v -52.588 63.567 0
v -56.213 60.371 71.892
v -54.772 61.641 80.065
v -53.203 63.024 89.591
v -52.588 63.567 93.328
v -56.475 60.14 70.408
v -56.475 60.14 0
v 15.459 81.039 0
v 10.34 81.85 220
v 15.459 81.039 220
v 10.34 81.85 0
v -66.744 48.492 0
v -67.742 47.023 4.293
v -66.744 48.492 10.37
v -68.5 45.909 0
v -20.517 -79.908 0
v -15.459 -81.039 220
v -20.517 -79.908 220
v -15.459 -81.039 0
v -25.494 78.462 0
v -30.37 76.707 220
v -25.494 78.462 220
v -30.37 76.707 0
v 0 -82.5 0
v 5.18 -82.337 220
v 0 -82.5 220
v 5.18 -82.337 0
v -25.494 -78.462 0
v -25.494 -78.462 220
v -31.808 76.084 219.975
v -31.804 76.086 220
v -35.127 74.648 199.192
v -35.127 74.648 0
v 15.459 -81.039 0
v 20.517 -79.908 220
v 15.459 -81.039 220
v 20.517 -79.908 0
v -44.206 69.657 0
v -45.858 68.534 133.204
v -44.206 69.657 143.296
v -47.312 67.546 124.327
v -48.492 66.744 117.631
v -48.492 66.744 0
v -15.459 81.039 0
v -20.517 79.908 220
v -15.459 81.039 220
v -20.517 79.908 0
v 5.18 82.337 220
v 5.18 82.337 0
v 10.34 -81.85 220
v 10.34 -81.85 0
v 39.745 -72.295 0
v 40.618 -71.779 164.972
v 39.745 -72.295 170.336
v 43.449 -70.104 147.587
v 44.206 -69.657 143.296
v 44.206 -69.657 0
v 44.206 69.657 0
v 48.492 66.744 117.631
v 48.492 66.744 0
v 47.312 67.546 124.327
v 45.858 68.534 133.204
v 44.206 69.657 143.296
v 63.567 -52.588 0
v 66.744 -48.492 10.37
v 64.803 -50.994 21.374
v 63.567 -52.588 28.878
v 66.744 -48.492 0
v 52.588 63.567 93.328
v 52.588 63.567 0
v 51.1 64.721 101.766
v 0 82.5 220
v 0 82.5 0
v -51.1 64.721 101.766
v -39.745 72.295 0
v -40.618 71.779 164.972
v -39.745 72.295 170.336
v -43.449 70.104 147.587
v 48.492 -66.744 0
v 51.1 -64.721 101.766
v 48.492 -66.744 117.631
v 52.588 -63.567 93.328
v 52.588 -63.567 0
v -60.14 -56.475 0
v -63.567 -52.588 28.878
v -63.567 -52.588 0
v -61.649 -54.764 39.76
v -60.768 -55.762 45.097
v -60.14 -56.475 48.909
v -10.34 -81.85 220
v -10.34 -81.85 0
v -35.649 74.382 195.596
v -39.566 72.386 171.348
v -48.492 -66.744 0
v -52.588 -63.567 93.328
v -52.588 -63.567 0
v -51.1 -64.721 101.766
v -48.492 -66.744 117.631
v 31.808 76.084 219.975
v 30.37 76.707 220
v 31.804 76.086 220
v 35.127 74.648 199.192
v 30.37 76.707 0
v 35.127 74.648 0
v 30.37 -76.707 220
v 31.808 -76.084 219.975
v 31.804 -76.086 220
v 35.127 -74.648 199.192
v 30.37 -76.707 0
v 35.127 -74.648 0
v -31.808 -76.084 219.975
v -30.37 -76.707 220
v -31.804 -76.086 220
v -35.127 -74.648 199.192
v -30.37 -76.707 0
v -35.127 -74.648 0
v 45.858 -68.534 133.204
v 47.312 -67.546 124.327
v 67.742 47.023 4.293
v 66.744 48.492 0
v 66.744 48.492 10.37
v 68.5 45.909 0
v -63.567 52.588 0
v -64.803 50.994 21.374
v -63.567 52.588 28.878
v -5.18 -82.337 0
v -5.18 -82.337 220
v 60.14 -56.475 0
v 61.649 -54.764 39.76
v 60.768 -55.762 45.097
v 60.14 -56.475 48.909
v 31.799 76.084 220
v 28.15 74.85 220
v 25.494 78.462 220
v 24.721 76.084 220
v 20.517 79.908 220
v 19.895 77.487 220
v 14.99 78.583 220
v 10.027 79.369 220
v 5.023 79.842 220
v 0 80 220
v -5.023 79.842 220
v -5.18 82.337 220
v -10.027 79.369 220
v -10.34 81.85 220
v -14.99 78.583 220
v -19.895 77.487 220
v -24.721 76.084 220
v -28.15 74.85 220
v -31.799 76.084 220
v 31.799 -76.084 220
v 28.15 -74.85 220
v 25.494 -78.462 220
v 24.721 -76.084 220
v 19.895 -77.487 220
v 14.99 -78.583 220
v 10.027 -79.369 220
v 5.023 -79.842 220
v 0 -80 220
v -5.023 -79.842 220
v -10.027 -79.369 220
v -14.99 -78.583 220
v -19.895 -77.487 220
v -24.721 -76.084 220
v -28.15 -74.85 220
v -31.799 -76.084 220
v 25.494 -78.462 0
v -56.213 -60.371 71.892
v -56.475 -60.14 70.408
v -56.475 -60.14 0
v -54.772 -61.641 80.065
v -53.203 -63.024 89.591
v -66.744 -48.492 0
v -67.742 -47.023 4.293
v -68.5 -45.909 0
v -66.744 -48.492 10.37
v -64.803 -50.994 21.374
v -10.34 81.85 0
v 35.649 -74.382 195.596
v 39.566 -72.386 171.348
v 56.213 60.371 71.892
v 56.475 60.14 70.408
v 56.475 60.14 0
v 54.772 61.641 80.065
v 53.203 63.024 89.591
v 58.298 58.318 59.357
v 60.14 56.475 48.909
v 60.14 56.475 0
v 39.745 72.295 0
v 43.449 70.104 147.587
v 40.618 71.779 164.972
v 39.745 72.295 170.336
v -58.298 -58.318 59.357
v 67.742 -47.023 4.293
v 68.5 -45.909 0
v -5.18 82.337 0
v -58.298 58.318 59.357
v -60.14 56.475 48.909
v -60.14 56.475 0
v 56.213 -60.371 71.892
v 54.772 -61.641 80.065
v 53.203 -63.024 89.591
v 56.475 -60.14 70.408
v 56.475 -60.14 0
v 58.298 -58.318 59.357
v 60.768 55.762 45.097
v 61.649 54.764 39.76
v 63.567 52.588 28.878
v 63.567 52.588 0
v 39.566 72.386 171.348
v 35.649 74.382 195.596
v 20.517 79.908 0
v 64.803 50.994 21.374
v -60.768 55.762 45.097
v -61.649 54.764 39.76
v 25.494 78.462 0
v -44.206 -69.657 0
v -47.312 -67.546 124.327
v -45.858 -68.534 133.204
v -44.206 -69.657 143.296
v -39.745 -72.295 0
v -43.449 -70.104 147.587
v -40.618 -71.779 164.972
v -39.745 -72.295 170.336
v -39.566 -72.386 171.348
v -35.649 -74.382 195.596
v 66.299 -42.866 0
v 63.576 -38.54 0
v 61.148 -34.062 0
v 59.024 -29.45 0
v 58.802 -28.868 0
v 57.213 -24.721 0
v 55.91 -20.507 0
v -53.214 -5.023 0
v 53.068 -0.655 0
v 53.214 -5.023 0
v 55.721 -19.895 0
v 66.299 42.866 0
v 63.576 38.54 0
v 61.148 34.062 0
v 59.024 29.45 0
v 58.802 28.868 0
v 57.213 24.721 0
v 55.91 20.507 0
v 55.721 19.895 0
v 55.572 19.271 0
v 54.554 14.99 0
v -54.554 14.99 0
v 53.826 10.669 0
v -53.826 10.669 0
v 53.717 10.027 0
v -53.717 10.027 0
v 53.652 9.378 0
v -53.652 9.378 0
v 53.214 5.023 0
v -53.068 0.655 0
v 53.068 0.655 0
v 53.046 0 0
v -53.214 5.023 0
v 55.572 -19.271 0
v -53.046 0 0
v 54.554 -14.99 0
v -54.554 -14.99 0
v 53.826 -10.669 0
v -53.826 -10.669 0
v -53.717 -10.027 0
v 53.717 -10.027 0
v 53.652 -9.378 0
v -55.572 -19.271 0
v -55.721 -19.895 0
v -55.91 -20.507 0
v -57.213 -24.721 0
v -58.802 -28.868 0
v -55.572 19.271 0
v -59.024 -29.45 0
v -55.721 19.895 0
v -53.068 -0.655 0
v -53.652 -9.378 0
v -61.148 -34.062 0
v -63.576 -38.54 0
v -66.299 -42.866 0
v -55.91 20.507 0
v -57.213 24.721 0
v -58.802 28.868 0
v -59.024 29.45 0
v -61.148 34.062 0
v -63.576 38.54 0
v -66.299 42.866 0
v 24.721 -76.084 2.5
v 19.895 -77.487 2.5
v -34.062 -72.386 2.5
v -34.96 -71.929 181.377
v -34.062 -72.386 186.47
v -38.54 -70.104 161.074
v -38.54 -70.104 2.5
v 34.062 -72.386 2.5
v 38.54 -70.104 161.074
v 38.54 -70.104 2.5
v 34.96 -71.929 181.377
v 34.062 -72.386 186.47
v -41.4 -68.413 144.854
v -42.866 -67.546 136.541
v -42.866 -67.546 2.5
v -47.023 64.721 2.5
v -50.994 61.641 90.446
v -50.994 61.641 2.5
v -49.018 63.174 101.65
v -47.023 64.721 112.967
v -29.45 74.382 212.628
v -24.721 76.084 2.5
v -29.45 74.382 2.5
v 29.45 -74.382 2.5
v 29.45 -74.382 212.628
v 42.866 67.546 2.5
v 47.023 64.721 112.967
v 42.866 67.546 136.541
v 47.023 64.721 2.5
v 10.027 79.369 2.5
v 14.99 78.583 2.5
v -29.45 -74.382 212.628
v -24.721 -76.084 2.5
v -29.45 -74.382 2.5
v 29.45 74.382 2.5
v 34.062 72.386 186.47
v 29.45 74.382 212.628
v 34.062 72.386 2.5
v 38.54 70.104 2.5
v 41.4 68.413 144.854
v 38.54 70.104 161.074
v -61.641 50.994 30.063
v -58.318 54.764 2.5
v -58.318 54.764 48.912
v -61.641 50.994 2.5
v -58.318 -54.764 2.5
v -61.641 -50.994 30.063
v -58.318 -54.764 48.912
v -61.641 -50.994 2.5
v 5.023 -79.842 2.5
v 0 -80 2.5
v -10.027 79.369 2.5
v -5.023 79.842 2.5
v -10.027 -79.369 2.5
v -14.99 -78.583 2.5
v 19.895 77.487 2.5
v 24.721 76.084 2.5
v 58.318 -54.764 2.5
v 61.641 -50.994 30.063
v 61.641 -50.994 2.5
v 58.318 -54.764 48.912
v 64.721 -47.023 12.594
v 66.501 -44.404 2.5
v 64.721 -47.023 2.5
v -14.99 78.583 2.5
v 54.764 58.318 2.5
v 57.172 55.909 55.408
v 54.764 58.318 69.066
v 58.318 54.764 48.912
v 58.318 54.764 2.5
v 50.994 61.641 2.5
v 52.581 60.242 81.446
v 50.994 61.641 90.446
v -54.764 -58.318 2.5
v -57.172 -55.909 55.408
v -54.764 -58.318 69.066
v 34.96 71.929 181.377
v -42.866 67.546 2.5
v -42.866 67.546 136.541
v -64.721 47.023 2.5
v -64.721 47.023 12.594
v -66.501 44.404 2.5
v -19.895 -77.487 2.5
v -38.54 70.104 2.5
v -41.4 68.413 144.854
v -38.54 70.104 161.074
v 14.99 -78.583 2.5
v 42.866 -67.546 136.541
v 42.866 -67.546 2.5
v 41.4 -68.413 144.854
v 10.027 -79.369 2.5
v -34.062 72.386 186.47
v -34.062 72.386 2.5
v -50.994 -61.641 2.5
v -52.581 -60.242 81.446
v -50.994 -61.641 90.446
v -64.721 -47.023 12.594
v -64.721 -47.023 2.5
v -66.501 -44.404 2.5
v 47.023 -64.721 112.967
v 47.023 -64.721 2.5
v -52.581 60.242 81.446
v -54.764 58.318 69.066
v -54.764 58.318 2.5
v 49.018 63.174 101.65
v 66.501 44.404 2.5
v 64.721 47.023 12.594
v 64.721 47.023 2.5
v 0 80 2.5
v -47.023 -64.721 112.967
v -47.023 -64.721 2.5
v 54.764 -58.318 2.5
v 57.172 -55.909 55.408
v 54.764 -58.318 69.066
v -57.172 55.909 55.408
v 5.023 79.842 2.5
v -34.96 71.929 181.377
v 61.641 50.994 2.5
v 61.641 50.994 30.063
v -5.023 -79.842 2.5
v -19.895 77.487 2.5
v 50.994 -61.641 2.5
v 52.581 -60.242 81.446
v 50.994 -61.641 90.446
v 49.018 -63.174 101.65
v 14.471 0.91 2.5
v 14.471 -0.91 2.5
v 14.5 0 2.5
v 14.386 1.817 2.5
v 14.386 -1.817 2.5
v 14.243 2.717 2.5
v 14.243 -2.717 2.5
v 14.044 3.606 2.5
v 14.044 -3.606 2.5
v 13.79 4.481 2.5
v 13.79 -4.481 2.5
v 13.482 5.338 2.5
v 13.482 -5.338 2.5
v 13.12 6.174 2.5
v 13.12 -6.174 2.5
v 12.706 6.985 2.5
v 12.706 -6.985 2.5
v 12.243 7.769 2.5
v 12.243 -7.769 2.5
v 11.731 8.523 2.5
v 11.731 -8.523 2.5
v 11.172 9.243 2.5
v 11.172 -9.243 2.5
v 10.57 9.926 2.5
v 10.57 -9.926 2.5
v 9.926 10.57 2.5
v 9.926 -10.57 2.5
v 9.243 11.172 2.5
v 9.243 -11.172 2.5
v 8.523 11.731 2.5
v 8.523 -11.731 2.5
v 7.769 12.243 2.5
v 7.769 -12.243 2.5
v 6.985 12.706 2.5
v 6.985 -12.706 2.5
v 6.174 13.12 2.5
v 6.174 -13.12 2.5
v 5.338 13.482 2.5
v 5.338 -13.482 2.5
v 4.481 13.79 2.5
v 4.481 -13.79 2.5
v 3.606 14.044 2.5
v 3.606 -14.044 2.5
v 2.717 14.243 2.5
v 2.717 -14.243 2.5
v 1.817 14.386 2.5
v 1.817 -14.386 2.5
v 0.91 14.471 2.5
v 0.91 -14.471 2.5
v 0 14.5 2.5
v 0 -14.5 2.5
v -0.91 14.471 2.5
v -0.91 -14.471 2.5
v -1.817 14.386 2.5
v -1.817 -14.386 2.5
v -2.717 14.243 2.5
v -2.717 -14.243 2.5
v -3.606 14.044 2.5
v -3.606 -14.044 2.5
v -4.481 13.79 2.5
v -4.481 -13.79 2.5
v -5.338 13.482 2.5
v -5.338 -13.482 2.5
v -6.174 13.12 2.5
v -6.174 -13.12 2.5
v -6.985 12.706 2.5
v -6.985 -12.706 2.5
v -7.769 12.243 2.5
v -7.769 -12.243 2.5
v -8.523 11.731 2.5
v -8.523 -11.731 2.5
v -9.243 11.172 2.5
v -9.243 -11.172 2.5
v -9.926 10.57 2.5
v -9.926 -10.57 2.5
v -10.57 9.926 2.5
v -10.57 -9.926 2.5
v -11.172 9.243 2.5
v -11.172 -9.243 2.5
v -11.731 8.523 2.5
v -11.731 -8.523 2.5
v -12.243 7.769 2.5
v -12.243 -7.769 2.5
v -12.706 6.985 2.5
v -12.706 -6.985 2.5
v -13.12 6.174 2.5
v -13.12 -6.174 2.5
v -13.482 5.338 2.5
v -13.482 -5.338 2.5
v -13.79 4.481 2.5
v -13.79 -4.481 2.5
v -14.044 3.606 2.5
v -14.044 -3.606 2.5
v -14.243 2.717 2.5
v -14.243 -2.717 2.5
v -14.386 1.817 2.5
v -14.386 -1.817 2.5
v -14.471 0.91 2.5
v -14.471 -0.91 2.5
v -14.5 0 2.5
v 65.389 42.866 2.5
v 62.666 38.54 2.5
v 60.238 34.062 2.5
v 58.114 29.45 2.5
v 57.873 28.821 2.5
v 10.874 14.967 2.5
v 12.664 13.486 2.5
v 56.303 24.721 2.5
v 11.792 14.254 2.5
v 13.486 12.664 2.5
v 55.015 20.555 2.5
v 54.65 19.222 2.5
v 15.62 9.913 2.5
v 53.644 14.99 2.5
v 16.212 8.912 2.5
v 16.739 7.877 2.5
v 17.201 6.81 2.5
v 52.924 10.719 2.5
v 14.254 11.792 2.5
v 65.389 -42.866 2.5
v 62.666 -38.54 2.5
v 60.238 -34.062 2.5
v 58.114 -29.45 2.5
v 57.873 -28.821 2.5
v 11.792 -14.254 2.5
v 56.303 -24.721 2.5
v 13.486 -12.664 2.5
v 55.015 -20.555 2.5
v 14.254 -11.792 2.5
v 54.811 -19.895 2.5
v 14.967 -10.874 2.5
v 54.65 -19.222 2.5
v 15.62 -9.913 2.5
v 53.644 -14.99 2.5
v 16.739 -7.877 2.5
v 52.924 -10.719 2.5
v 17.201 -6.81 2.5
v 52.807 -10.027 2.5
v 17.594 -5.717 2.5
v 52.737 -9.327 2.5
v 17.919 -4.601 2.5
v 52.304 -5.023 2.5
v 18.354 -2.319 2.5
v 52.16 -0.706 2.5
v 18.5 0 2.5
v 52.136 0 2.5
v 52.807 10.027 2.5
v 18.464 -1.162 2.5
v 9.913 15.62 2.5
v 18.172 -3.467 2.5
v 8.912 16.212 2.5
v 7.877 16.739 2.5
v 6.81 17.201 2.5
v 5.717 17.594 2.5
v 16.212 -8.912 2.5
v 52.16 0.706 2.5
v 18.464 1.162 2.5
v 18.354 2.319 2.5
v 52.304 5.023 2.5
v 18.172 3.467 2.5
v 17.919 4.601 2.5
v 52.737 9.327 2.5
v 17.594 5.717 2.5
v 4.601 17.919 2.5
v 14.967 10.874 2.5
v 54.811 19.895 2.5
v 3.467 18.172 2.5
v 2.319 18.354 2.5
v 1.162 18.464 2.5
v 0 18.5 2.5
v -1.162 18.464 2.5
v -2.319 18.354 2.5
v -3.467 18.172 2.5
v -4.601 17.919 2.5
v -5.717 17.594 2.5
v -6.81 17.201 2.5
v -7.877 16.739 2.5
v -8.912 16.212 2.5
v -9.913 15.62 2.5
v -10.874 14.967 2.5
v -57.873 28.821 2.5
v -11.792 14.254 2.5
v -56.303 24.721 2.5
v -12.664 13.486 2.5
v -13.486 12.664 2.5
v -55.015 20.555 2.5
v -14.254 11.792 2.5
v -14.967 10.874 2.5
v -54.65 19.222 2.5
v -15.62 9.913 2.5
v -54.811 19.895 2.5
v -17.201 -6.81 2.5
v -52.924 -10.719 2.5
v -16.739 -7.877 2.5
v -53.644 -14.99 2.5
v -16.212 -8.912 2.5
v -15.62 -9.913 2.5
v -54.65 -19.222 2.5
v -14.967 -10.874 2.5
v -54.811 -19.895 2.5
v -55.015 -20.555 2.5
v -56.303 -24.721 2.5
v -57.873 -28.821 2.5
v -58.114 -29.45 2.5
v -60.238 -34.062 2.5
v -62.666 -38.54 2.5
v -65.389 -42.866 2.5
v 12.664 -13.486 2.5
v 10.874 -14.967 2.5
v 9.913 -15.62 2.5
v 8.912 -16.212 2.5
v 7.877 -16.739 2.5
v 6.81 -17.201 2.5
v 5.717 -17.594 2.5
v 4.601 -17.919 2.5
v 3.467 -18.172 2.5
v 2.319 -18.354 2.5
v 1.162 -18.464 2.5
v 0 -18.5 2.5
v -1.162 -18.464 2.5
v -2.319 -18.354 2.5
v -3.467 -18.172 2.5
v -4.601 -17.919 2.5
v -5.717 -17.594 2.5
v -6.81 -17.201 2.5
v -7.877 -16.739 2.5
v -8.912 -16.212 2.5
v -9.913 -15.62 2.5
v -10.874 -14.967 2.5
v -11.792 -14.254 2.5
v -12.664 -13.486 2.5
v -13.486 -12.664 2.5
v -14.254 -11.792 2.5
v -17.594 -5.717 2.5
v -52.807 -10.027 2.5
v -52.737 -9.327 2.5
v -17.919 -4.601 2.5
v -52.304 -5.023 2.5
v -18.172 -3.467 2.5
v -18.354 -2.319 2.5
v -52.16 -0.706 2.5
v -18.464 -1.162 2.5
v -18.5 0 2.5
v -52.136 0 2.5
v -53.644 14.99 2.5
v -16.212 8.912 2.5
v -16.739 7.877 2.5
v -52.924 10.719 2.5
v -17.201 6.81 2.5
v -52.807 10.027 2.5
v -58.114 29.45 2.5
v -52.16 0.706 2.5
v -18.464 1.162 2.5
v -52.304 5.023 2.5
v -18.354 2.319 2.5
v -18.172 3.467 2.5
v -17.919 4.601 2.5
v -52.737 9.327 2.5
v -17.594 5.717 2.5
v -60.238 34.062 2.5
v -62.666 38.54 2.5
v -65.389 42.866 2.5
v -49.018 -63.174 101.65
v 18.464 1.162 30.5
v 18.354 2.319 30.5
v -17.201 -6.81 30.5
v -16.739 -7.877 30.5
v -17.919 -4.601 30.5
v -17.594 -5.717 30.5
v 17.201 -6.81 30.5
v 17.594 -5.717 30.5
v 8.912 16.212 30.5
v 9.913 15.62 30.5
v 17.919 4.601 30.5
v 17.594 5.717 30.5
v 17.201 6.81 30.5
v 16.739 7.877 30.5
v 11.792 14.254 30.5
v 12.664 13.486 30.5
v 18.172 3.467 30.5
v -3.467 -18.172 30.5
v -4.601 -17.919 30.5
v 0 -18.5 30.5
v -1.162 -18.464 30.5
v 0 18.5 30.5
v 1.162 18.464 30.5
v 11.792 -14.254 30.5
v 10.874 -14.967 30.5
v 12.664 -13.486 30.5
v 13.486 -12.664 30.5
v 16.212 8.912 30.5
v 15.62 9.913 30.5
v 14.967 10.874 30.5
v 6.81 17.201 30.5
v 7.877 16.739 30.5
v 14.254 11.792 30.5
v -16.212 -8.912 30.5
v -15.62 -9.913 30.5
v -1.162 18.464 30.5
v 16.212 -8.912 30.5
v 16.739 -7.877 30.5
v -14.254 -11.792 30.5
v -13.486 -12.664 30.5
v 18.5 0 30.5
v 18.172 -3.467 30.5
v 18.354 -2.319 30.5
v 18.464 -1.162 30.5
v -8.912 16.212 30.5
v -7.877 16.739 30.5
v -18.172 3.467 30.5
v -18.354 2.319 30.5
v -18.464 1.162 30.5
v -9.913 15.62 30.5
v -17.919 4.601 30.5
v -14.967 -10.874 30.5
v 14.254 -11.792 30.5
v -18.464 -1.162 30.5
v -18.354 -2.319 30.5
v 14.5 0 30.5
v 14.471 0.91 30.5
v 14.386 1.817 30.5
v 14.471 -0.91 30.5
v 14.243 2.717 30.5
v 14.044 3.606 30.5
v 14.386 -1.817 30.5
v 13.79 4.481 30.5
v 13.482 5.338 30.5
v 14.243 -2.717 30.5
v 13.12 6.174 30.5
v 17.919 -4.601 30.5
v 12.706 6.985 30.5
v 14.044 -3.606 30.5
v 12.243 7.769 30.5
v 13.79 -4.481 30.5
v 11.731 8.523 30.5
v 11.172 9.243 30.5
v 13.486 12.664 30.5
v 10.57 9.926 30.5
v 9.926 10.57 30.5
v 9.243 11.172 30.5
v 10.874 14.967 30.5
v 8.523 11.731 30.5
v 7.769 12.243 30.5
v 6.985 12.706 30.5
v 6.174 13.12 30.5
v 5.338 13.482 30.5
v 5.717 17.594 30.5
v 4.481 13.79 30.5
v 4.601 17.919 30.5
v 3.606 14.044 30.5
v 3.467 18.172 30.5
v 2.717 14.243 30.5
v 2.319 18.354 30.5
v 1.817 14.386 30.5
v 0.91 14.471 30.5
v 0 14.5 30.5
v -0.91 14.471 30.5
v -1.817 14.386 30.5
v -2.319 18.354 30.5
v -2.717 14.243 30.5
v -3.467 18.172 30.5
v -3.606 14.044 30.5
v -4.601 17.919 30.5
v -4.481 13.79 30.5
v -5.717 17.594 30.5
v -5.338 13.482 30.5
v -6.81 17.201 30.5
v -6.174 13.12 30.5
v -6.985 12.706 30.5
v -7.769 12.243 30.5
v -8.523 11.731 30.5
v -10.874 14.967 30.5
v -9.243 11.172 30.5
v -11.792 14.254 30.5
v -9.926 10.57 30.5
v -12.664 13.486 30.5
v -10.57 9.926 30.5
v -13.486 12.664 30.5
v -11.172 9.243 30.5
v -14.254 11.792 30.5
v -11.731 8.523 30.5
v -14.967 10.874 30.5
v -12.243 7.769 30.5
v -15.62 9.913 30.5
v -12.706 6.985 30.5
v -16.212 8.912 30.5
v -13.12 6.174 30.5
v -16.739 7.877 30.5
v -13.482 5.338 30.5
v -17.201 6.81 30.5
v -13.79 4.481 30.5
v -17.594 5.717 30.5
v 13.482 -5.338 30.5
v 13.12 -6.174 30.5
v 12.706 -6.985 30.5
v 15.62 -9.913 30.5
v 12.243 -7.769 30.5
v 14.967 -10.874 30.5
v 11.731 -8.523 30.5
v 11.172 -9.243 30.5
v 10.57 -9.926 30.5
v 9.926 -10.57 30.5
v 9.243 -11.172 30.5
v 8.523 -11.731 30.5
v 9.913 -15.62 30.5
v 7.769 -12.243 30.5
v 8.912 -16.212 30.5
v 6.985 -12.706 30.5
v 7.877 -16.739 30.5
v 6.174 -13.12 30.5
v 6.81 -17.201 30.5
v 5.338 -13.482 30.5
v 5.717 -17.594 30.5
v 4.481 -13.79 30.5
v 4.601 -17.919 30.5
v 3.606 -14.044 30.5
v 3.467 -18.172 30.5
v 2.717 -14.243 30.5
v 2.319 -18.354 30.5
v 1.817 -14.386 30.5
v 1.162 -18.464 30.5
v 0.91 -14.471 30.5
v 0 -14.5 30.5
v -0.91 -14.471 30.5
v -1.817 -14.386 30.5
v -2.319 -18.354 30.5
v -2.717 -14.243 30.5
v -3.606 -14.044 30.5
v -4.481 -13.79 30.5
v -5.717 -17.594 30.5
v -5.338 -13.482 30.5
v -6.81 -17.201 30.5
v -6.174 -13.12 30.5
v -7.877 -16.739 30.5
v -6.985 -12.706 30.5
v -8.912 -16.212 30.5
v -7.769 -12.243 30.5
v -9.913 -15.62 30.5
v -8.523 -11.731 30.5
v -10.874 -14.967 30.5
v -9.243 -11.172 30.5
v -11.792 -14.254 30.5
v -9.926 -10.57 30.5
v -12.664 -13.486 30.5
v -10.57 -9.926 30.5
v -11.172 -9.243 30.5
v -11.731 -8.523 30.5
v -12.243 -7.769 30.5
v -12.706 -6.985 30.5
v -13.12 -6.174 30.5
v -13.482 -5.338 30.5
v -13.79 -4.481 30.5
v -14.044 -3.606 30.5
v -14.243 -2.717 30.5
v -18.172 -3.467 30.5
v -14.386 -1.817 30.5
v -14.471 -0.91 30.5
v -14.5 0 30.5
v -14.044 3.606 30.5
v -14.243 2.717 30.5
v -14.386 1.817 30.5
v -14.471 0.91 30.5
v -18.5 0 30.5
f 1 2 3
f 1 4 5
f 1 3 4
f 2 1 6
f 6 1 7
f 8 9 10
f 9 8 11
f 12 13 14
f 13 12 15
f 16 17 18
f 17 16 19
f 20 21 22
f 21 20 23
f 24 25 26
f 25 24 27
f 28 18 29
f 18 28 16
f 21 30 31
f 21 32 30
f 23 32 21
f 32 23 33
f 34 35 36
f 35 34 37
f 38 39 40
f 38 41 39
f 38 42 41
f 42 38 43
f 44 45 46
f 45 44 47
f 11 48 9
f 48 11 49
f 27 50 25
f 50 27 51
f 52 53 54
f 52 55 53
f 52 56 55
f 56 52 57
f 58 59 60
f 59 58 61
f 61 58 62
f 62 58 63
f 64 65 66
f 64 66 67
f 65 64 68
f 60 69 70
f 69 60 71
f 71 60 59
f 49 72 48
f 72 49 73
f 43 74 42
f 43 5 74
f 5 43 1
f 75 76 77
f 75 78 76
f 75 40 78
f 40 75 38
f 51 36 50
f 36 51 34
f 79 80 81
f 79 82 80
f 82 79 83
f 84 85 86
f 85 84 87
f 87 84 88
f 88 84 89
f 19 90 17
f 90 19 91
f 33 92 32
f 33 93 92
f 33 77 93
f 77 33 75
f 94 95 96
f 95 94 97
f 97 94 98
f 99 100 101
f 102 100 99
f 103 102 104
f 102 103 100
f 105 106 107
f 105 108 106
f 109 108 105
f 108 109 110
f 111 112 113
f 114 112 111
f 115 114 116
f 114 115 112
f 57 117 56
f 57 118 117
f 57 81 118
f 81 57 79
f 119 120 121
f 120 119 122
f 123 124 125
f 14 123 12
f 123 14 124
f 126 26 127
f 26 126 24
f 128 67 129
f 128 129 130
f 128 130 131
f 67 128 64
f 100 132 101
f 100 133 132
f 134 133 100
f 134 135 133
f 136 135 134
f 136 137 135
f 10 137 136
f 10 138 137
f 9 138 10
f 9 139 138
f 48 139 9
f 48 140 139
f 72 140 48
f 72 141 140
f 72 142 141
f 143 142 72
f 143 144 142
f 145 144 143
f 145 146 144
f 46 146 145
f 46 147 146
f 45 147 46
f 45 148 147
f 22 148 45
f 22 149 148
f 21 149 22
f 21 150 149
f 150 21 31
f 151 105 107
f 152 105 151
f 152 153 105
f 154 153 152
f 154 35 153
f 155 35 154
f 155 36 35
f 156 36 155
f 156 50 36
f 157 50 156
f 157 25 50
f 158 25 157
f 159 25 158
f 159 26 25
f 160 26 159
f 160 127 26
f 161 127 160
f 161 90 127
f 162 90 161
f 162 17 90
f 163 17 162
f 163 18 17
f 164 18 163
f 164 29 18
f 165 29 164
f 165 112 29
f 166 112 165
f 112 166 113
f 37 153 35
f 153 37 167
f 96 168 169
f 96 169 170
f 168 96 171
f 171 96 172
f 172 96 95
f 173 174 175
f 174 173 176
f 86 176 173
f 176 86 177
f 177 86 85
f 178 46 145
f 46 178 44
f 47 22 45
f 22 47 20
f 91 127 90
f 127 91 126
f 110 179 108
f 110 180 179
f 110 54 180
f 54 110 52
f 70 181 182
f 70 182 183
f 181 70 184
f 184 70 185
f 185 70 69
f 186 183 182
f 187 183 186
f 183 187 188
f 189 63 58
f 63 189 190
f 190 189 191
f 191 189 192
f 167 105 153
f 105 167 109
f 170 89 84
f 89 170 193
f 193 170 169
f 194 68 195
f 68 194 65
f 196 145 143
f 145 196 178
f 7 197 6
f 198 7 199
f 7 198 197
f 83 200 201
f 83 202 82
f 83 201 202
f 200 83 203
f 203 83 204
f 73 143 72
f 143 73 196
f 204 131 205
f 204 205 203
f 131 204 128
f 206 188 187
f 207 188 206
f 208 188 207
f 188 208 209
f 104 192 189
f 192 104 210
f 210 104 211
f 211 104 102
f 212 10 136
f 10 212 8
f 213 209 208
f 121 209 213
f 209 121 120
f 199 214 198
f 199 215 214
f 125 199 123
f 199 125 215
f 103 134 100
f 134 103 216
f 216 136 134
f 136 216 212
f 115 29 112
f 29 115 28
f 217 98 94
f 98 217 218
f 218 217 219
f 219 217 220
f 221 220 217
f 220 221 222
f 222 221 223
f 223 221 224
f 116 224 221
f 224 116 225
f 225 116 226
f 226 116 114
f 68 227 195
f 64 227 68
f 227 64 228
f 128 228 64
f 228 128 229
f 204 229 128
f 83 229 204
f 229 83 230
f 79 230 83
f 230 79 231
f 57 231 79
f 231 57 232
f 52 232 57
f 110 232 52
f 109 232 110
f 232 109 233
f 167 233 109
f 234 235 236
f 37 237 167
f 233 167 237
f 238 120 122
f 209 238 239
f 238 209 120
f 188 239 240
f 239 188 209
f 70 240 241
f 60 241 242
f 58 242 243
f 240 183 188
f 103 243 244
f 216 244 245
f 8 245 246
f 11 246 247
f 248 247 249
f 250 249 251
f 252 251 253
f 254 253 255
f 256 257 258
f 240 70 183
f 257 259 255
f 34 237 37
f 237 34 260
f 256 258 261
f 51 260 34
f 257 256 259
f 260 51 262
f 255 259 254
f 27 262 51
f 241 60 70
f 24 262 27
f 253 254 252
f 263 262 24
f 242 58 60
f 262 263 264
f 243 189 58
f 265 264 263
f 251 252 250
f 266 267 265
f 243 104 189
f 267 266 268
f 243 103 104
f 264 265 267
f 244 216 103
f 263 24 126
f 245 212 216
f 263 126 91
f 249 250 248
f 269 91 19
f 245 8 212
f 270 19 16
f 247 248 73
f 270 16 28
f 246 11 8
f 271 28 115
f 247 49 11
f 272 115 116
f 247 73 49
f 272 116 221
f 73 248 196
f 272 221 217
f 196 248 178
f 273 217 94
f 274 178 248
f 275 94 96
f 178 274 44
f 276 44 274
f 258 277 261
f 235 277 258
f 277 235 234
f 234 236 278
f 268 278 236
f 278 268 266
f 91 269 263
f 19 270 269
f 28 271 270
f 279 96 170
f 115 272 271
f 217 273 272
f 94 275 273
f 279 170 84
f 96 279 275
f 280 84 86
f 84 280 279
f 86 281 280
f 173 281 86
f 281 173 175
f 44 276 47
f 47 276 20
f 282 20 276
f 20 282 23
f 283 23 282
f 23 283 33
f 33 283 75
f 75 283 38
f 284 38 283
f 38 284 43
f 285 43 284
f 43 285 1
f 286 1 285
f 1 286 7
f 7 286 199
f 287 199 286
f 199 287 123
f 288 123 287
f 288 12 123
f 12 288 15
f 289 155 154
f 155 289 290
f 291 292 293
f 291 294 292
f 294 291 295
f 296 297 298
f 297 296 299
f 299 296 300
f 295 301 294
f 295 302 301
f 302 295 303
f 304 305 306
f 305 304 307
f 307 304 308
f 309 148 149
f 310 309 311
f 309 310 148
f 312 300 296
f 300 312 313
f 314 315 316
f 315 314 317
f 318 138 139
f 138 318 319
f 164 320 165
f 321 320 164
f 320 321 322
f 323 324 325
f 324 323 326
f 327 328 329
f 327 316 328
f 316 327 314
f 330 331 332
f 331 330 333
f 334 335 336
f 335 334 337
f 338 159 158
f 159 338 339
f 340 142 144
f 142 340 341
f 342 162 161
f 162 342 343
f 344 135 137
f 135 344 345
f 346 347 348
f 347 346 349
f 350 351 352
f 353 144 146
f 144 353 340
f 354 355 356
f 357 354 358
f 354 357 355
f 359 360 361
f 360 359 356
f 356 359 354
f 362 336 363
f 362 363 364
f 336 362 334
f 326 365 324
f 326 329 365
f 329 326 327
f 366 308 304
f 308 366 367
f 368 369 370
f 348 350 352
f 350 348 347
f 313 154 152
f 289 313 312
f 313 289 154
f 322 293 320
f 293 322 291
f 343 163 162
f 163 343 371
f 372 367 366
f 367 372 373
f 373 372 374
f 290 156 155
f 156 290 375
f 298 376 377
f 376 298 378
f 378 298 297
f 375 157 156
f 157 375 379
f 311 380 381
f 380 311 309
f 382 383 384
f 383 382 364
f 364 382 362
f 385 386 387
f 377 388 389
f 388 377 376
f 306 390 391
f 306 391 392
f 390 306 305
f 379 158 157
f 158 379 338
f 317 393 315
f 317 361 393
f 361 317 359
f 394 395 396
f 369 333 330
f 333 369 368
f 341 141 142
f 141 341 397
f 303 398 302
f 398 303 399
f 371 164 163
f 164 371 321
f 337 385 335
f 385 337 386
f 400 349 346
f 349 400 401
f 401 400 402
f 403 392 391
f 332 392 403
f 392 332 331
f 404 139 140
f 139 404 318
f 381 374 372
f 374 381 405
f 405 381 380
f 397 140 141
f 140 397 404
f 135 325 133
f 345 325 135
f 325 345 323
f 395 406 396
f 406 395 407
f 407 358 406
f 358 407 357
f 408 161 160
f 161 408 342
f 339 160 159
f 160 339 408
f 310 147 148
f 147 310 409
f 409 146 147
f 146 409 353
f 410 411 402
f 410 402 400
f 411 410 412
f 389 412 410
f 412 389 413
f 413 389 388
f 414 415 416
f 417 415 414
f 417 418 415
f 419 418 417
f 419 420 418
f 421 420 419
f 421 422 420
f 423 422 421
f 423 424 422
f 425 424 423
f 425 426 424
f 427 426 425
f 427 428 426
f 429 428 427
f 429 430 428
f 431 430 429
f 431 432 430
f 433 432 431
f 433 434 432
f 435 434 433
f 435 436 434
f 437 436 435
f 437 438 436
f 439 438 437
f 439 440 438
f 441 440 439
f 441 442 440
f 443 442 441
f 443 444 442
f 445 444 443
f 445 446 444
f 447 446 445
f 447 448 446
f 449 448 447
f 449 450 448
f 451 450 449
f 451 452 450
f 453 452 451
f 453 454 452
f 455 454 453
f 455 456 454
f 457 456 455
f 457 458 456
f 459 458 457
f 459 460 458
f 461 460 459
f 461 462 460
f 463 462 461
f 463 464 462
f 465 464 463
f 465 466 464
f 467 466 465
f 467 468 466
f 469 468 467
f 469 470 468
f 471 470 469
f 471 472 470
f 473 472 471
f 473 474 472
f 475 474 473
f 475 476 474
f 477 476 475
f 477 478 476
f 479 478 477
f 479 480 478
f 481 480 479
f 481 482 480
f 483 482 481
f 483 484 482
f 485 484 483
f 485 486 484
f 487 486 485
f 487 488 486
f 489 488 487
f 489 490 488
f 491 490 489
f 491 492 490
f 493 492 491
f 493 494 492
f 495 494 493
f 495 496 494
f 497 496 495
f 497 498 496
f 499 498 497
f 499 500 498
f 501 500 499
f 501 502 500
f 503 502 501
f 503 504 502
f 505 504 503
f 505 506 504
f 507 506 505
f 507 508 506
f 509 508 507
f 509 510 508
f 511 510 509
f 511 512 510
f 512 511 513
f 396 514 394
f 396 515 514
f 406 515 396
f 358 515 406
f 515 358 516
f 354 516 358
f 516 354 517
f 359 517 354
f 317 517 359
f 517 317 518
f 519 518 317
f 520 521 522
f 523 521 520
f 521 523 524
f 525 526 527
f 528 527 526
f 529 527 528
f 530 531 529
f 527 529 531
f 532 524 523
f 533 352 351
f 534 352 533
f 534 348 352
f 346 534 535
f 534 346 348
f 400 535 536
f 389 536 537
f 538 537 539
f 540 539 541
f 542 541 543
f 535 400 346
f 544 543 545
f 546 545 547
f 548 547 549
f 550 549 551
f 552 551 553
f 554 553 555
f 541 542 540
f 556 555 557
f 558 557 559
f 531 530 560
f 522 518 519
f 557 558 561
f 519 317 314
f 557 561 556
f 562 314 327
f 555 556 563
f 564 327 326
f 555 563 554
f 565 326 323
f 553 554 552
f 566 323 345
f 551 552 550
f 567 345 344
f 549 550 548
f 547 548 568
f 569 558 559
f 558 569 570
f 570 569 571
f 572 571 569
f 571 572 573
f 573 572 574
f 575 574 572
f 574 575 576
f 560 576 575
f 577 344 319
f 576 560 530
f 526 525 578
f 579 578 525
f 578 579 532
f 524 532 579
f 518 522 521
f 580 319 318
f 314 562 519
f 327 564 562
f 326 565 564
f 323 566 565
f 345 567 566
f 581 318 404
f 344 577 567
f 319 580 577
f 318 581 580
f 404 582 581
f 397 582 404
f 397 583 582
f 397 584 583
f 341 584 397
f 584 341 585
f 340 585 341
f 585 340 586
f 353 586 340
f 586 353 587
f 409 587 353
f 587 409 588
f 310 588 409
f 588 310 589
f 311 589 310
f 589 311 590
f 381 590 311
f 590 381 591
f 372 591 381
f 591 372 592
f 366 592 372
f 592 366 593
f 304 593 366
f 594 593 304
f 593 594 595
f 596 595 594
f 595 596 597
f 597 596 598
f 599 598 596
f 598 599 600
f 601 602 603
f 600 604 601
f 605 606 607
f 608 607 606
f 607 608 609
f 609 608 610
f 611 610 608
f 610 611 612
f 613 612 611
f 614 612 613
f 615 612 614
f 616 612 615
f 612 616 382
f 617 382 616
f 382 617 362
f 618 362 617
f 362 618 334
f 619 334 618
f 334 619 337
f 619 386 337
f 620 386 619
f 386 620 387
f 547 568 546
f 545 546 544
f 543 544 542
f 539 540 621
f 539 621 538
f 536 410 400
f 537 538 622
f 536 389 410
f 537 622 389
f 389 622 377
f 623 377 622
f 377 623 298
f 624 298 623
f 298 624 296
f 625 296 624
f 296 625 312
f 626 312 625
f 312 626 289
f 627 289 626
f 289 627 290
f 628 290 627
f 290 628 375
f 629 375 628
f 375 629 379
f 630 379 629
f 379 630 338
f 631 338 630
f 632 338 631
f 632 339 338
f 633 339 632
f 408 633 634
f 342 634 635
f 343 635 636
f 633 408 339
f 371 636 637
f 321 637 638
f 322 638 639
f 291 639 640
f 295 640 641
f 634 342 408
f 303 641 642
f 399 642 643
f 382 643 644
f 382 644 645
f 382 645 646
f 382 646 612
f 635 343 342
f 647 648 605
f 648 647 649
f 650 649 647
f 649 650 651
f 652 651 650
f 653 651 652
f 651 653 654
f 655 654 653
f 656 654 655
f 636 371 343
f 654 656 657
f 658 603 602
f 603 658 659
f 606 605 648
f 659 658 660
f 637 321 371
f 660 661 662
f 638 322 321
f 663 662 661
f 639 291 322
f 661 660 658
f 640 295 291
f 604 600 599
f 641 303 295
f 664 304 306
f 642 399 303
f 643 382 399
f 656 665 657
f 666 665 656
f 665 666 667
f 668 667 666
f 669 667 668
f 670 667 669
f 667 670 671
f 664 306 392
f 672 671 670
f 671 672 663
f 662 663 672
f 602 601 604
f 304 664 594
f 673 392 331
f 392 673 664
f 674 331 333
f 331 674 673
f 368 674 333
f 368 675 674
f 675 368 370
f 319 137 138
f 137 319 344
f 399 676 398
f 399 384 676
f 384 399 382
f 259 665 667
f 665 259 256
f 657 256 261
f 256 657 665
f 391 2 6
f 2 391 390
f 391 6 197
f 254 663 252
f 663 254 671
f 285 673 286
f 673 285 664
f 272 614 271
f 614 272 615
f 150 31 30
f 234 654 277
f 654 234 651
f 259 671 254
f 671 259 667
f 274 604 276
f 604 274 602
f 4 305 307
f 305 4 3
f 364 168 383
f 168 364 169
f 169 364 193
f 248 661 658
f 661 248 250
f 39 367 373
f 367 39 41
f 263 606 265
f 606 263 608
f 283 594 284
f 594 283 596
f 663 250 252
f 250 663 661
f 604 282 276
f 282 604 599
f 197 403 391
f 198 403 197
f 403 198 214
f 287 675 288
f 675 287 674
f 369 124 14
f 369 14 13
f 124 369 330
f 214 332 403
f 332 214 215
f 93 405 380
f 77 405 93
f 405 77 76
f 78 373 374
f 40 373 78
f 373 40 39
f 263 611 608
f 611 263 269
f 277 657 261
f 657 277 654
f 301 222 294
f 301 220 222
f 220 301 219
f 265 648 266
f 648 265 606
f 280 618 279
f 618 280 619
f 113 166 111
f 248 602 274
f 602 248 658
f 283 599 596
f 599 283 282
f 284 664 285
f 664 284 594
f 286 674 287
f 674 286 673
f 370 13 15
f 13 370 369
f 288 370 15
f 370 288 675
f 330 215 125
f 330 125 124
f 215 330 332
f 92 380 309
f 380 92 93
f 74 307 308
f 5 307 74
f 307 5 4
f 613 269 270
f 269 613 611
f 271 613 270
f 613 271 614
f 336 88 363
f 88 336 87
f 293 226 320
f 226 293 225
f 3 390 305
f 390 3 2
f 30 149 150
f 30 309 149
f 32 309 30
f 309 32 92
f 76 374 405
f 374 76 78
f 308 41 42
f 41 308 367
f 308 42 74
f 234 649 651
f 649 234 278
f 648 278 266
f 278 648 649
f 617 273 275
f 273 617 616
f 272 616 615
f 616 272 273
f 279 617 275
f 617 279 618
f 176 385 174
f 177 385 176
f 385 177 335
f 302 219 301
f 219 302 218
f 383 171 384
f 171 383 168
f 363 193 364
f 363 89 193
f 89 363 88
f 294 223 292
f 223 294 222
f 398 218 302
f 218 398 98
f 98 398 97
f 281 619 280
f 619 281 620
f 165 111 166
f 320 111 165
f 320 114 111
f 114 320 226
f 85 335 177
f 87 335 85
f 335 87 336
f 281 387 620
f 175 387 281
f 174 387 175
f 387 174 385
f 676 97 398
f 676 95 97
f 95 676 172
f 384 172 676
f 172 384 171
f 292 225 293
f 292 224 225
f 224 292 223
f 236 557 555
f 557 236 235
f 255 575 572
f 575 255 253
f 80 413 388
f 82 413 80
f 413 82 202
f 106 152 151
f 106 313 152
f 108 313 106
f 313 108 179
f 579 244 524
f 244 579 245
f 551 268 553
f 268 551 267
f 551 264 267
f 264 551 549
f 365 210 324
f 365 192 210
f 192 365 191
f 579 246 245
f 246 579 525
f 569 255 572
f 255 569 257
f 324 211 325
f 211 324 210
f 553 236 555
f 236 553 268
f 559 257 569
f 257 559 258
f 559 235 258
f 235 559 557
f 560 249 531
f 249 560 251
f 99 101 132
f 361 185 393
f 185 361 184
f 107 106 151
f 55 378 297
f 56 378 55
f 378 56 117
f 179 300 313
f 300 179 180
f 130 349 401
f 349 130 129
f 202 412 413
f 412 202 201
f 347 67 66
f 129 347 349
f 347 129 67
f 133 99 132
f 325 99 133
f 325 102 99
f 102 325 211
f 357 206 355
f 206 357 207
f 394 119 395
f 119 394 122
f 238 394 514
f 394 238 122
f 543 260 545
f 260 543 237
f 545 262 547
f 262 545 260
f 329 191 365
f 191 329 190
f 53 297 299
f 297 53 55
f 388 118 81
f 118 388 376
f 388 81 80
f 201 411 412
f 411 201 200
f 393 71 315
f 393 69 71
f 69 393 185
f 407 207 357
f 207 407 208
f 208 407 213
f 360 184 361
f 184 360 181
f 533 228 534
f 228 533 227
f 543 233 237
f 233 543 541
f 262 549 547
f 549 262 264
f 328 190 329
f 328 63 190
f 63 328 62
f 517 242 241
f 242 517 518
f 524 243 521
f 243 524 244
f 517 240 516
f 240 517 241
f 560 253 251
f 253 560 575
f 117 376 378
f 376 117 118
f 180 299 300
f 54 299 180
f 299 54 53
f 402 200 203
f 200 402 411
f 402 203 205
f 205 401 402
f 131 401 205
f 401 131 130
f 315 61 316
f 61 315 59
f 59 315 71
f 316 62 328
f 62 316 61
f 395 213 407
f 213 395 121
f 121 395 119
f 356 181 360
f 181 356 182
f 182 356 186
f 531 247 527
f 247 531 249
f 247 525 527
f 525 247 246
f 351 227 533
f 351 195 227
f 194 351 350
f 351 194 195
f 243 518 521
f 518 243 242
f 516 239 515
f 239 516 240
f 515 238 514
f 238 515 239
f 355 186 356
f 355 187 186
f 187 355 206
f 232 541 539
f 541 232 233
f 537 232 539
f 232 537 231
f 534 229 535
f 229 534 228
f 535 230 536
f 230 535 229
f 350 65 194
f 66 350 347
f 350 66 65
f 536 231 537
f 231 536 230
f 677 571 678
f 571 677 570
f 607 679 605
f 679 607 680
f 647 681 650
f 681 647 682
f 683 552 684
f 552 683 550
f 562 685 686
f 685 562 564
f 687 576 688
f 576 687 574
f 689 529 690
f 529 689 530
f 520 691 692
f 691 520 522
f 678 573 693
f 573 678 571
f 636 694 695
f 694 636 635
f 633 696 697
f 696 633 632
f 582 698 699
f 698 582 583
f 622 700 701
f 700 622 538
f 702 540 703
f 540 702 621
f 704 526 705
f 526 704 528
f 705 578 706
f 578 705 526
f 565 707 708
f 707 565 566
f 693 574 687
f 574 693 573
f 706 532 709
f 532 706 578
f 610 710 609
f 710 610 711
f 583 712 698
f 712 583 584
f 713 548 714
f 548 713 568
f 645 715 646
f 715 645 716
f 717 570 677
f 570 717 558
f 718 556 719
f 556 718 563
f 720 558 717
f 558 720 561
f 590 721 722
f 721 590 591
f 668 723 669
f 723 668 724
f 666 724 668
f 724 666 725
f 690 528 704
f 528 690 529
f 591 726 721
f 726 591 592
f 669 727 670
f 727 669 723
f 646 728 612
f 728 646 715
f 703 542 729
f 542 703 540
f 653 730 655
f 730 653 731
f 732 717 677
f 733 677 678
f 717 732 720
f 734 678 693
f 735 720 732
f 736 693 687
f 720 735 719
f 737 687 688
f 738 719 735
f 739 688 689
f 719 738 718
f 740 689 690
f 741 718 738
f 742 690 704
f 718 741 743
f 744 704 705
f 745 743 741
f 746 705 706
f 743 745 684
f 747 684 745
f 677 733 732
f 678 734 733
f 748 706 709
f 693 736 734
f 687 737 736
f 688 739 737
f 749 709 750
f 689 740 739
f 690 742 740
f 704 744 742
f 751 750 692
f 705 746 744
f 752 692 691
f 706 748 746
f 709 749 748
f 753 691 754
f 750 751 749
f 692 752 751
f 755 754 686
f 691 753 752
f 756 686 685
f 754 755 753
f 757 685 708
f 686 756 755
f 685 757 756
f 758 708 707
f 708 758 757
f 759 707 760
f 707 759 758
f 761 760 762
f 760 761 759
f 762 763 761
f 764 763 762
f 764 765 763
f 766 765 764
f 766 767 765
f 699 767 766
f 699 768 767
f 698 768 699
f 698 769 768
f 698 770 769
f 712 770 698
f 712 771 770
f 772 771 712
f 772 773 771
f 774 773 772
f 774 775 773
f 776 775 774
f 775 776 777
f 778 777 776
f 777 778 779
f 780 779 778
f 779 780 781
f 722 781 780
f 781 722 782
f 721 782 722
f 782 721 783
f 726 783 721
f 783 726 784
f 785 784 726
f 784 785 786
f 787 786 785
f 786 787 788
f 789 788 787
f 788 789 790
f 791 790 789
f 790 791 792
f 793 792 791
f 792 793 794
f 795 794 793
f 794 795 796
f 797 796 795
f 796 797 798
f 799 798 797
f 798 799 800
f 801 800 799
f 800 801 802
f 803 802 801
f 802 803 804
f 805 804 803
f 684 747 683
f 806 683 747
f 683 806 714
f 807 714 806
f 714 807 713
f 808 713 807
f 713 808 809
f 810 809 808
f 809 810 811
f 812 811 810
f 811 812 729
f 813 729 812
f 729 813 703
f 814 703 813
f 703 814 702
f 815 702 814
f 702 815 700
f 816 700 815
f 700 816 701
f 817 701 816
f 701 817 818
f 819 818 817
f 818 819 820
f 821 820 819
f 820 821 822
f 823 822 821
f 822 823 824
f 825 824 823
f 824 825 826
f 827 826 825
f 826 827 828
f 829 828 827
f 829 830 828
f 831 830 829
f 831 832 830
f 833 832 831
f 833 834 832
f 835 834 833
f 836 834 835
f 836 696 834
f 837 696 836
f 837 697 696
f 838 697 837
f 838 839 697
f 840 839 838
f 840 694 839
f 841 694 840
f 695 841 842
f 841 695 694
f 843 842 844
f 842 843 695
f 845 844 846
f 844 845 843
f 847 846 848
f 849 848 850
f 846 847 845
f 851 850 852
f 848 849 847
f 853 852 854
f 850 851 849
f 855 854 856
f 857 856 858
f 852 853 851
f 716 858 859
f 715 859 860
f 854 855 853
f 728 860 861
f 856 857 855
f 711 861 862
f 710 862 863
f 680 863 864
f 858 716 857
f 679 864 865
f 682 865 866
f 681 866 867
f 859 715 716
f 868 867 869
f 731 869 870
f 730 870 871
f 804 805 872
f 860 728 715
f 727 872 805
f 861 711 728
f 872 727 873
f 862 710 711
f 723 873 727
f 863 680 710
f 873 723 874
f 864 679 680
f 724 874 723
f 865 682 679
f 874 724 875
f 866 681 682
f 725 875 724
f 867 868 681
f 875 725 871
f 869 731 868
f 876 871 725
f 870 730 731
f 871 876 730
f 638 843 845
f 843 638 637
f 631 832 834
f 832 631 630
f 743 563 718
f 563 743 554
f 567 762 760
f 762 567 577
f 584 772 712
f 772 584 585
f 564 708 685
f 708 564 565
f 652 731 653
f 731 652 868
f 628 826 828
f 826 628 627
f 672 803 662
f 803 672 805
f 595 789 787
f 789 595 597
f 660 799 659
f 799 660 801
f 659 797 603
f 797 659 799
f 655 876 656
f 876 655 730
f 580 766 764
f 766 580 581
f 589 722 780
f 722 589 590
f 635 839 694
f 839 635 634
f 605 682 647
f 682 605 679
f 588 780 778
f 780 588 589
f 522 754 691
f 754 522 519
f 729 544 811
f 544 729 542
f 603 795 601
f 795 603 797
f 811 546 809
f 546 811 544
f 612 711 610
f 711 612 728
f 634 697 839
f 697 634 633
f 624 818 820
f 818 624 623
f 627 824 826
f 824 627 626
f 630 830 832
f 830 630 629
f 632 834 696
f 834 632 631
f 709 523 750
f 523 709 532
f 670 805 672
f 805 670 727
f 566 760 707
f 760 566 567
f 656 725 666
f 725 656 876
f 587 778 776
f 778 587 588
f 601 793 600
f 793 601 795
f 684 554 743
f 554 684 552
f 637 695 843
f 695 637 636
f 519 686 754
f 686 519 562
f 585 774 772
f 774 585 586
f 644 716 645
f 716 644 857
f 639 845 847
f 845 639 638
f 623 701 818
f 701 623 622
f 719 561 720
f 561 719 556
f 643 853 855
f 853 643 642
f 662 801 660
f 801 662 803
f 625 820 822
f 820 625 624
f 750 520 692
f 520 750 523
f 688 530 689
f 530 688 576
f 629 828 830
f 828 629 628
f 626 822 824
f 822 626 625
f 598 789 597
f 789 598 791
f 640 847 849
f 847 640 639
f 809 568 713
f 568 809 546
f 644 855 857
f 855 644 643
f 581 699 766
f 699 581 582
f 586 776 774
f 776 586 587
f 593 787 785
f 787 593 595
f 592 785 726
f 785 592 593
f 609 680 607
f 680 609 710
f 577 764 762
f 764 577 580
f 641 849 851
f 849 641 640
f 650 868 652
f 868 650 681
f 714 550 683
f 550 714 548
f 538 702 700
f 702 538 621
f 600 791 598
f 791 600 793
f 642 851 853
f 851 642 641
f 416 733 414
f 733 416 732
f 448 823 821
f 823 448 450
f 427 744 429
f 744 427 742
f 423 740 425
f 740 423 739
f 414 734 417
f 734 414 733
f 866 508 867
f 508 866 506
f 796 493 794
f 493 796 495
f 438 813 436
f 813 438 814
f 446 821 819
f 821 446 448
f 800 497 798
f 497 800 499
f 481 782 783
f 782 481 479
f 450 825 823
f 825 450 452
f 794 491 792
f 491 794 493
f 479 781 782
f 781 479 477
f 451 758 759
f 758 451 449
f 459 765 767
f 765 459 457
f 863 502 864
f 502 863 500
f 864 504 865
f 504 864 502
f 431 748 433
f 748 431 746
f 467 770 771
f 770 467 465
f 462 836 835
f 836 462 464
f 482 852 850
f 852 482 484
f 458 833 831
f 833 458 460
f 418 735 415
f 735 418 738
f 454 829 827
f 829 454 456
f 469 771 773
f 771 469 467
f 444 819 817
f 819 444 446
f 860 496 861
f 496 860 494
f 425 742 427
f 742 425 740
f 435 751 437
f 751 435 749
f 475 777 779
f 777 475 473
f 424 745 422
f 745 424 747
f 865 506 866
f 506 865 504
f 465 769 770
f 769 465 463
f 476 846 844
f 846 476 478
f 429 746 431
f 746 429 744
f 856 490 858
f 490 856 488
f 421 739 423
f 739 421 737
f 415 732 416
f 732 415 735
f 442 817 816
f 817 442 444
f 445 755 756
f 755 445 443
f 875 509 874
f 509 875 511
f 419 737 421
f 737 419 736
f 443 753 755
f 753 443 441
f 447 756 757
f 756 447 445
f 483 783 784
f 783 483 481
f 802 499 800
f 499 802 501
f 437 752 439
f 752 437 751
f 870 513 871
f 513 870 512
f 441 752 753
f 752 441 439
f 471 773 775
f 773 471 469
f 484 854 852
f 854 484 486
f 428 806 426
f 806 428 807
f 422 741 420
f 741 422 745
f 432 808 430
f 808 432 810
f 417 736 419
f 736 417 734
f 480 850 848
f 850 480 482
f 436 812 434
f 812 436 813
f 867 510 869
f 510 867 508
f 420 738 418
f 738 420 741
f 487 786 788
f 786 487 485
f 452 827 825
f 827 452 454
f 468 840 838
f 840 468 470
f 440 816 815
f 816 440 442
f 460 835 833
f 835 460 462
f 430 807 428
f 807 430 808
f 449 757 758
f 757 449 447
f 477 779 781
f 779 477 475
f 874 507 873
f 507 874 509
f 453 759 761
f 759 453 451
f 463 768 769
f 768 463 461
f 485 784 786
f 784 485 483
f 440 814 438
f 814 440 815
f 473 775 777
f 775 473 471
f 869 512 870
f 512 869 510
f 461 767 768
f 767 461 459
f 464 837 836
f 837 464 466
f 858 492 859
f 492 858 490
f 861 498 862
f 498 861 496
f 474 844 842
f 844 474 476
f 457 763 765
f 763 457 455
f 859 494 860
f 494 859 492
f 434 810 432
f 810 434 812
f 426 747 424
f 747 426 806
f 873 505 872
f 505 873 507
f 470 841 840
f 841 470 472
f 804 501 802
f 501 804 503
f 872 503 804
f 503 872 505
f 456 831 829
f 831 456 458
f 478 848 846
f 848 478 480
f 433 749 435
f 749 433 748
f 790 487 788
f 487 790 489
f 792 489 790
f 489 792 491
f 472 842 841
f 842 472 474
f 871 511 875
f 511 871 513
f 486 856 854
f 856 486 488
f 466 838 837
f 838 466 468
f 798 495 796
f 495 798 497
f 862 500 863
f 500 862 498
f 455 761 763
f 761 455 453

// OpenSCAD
/*
 * This is a stand for the Kenwood Food Processor grater discs for a Kenwood Foodprocessor (KAH65PL) attachment.
 */

/*
 * The grater discs are 156.7 mm in diameter, so I will make the inner diameter 160 mm to be sure it fits.
 */
inner_diameter = 160;

/**
 * The height of the inner part of the cylinder. 208 mm is minimum height for the grater discs to fit.
 */
inner_height = 220;

/*
    The wall thickness.
*/
wall = 2.5;

/*
    Calculate the outer diameter of the cylinder.

    The outer diameter is determined by adding twice the wall thickness to the inner diameter.

    Variables:
    - inner_diameter: The diameter of the inner part of the cylinder.
    - wall: The thickness of the cylinder wall.
*/
outer_diameter = inner_diameter + wall * 2;

module pipe()
{
    difference()
    {
        cylinder(d = outer_diameter, h = inner_height, $fn = 100);
        // Make hollow
        translate([ 0, 0, wall ]) cylinder(d = inner_diameter, h = inner_height + 1, $fn = 100);

        // Make openings
        translate([ -inner_diameter + 20, 0, -5 ]) rotate([ 0, 20, 0 ])
            cylinder(d = inner_diameter, h = inner_height * 1.20, $fn = 100);
        translate([ inner_diameter - 20, 0, -5 ]) rotate([ 0, -20, 0 ])
            cylinder(d = inner_diameter, h = inner_height * 1.20, $fn = 100);
    }
}

/*
 * Module: peg
 *
 * Description:
 * Makes the middle peg for the holder, for the grate to be attached to.
 *
 * File Path:
 * /home/mabs/project/mabs.dk/openscad-models/Kenwood Food Processor Attachment/Grater holder/attempt2 - cylinder.scad
 *
 * Usage:
 * Call this module to create the middle peg.
 *
 * Example:
 * peg();
 */
module peg()
{
    difference()
    {
        translate([ 0, 0, wall ]) cylinder(d = 37, h = 28, $fn = 100);
        translate([ 0, 0, wall ]) cylinder(d = 29, h = 30, $fn = 100);
    }
}

module make_stand()
{
    pipe();
    peg();
}

make_stand();
